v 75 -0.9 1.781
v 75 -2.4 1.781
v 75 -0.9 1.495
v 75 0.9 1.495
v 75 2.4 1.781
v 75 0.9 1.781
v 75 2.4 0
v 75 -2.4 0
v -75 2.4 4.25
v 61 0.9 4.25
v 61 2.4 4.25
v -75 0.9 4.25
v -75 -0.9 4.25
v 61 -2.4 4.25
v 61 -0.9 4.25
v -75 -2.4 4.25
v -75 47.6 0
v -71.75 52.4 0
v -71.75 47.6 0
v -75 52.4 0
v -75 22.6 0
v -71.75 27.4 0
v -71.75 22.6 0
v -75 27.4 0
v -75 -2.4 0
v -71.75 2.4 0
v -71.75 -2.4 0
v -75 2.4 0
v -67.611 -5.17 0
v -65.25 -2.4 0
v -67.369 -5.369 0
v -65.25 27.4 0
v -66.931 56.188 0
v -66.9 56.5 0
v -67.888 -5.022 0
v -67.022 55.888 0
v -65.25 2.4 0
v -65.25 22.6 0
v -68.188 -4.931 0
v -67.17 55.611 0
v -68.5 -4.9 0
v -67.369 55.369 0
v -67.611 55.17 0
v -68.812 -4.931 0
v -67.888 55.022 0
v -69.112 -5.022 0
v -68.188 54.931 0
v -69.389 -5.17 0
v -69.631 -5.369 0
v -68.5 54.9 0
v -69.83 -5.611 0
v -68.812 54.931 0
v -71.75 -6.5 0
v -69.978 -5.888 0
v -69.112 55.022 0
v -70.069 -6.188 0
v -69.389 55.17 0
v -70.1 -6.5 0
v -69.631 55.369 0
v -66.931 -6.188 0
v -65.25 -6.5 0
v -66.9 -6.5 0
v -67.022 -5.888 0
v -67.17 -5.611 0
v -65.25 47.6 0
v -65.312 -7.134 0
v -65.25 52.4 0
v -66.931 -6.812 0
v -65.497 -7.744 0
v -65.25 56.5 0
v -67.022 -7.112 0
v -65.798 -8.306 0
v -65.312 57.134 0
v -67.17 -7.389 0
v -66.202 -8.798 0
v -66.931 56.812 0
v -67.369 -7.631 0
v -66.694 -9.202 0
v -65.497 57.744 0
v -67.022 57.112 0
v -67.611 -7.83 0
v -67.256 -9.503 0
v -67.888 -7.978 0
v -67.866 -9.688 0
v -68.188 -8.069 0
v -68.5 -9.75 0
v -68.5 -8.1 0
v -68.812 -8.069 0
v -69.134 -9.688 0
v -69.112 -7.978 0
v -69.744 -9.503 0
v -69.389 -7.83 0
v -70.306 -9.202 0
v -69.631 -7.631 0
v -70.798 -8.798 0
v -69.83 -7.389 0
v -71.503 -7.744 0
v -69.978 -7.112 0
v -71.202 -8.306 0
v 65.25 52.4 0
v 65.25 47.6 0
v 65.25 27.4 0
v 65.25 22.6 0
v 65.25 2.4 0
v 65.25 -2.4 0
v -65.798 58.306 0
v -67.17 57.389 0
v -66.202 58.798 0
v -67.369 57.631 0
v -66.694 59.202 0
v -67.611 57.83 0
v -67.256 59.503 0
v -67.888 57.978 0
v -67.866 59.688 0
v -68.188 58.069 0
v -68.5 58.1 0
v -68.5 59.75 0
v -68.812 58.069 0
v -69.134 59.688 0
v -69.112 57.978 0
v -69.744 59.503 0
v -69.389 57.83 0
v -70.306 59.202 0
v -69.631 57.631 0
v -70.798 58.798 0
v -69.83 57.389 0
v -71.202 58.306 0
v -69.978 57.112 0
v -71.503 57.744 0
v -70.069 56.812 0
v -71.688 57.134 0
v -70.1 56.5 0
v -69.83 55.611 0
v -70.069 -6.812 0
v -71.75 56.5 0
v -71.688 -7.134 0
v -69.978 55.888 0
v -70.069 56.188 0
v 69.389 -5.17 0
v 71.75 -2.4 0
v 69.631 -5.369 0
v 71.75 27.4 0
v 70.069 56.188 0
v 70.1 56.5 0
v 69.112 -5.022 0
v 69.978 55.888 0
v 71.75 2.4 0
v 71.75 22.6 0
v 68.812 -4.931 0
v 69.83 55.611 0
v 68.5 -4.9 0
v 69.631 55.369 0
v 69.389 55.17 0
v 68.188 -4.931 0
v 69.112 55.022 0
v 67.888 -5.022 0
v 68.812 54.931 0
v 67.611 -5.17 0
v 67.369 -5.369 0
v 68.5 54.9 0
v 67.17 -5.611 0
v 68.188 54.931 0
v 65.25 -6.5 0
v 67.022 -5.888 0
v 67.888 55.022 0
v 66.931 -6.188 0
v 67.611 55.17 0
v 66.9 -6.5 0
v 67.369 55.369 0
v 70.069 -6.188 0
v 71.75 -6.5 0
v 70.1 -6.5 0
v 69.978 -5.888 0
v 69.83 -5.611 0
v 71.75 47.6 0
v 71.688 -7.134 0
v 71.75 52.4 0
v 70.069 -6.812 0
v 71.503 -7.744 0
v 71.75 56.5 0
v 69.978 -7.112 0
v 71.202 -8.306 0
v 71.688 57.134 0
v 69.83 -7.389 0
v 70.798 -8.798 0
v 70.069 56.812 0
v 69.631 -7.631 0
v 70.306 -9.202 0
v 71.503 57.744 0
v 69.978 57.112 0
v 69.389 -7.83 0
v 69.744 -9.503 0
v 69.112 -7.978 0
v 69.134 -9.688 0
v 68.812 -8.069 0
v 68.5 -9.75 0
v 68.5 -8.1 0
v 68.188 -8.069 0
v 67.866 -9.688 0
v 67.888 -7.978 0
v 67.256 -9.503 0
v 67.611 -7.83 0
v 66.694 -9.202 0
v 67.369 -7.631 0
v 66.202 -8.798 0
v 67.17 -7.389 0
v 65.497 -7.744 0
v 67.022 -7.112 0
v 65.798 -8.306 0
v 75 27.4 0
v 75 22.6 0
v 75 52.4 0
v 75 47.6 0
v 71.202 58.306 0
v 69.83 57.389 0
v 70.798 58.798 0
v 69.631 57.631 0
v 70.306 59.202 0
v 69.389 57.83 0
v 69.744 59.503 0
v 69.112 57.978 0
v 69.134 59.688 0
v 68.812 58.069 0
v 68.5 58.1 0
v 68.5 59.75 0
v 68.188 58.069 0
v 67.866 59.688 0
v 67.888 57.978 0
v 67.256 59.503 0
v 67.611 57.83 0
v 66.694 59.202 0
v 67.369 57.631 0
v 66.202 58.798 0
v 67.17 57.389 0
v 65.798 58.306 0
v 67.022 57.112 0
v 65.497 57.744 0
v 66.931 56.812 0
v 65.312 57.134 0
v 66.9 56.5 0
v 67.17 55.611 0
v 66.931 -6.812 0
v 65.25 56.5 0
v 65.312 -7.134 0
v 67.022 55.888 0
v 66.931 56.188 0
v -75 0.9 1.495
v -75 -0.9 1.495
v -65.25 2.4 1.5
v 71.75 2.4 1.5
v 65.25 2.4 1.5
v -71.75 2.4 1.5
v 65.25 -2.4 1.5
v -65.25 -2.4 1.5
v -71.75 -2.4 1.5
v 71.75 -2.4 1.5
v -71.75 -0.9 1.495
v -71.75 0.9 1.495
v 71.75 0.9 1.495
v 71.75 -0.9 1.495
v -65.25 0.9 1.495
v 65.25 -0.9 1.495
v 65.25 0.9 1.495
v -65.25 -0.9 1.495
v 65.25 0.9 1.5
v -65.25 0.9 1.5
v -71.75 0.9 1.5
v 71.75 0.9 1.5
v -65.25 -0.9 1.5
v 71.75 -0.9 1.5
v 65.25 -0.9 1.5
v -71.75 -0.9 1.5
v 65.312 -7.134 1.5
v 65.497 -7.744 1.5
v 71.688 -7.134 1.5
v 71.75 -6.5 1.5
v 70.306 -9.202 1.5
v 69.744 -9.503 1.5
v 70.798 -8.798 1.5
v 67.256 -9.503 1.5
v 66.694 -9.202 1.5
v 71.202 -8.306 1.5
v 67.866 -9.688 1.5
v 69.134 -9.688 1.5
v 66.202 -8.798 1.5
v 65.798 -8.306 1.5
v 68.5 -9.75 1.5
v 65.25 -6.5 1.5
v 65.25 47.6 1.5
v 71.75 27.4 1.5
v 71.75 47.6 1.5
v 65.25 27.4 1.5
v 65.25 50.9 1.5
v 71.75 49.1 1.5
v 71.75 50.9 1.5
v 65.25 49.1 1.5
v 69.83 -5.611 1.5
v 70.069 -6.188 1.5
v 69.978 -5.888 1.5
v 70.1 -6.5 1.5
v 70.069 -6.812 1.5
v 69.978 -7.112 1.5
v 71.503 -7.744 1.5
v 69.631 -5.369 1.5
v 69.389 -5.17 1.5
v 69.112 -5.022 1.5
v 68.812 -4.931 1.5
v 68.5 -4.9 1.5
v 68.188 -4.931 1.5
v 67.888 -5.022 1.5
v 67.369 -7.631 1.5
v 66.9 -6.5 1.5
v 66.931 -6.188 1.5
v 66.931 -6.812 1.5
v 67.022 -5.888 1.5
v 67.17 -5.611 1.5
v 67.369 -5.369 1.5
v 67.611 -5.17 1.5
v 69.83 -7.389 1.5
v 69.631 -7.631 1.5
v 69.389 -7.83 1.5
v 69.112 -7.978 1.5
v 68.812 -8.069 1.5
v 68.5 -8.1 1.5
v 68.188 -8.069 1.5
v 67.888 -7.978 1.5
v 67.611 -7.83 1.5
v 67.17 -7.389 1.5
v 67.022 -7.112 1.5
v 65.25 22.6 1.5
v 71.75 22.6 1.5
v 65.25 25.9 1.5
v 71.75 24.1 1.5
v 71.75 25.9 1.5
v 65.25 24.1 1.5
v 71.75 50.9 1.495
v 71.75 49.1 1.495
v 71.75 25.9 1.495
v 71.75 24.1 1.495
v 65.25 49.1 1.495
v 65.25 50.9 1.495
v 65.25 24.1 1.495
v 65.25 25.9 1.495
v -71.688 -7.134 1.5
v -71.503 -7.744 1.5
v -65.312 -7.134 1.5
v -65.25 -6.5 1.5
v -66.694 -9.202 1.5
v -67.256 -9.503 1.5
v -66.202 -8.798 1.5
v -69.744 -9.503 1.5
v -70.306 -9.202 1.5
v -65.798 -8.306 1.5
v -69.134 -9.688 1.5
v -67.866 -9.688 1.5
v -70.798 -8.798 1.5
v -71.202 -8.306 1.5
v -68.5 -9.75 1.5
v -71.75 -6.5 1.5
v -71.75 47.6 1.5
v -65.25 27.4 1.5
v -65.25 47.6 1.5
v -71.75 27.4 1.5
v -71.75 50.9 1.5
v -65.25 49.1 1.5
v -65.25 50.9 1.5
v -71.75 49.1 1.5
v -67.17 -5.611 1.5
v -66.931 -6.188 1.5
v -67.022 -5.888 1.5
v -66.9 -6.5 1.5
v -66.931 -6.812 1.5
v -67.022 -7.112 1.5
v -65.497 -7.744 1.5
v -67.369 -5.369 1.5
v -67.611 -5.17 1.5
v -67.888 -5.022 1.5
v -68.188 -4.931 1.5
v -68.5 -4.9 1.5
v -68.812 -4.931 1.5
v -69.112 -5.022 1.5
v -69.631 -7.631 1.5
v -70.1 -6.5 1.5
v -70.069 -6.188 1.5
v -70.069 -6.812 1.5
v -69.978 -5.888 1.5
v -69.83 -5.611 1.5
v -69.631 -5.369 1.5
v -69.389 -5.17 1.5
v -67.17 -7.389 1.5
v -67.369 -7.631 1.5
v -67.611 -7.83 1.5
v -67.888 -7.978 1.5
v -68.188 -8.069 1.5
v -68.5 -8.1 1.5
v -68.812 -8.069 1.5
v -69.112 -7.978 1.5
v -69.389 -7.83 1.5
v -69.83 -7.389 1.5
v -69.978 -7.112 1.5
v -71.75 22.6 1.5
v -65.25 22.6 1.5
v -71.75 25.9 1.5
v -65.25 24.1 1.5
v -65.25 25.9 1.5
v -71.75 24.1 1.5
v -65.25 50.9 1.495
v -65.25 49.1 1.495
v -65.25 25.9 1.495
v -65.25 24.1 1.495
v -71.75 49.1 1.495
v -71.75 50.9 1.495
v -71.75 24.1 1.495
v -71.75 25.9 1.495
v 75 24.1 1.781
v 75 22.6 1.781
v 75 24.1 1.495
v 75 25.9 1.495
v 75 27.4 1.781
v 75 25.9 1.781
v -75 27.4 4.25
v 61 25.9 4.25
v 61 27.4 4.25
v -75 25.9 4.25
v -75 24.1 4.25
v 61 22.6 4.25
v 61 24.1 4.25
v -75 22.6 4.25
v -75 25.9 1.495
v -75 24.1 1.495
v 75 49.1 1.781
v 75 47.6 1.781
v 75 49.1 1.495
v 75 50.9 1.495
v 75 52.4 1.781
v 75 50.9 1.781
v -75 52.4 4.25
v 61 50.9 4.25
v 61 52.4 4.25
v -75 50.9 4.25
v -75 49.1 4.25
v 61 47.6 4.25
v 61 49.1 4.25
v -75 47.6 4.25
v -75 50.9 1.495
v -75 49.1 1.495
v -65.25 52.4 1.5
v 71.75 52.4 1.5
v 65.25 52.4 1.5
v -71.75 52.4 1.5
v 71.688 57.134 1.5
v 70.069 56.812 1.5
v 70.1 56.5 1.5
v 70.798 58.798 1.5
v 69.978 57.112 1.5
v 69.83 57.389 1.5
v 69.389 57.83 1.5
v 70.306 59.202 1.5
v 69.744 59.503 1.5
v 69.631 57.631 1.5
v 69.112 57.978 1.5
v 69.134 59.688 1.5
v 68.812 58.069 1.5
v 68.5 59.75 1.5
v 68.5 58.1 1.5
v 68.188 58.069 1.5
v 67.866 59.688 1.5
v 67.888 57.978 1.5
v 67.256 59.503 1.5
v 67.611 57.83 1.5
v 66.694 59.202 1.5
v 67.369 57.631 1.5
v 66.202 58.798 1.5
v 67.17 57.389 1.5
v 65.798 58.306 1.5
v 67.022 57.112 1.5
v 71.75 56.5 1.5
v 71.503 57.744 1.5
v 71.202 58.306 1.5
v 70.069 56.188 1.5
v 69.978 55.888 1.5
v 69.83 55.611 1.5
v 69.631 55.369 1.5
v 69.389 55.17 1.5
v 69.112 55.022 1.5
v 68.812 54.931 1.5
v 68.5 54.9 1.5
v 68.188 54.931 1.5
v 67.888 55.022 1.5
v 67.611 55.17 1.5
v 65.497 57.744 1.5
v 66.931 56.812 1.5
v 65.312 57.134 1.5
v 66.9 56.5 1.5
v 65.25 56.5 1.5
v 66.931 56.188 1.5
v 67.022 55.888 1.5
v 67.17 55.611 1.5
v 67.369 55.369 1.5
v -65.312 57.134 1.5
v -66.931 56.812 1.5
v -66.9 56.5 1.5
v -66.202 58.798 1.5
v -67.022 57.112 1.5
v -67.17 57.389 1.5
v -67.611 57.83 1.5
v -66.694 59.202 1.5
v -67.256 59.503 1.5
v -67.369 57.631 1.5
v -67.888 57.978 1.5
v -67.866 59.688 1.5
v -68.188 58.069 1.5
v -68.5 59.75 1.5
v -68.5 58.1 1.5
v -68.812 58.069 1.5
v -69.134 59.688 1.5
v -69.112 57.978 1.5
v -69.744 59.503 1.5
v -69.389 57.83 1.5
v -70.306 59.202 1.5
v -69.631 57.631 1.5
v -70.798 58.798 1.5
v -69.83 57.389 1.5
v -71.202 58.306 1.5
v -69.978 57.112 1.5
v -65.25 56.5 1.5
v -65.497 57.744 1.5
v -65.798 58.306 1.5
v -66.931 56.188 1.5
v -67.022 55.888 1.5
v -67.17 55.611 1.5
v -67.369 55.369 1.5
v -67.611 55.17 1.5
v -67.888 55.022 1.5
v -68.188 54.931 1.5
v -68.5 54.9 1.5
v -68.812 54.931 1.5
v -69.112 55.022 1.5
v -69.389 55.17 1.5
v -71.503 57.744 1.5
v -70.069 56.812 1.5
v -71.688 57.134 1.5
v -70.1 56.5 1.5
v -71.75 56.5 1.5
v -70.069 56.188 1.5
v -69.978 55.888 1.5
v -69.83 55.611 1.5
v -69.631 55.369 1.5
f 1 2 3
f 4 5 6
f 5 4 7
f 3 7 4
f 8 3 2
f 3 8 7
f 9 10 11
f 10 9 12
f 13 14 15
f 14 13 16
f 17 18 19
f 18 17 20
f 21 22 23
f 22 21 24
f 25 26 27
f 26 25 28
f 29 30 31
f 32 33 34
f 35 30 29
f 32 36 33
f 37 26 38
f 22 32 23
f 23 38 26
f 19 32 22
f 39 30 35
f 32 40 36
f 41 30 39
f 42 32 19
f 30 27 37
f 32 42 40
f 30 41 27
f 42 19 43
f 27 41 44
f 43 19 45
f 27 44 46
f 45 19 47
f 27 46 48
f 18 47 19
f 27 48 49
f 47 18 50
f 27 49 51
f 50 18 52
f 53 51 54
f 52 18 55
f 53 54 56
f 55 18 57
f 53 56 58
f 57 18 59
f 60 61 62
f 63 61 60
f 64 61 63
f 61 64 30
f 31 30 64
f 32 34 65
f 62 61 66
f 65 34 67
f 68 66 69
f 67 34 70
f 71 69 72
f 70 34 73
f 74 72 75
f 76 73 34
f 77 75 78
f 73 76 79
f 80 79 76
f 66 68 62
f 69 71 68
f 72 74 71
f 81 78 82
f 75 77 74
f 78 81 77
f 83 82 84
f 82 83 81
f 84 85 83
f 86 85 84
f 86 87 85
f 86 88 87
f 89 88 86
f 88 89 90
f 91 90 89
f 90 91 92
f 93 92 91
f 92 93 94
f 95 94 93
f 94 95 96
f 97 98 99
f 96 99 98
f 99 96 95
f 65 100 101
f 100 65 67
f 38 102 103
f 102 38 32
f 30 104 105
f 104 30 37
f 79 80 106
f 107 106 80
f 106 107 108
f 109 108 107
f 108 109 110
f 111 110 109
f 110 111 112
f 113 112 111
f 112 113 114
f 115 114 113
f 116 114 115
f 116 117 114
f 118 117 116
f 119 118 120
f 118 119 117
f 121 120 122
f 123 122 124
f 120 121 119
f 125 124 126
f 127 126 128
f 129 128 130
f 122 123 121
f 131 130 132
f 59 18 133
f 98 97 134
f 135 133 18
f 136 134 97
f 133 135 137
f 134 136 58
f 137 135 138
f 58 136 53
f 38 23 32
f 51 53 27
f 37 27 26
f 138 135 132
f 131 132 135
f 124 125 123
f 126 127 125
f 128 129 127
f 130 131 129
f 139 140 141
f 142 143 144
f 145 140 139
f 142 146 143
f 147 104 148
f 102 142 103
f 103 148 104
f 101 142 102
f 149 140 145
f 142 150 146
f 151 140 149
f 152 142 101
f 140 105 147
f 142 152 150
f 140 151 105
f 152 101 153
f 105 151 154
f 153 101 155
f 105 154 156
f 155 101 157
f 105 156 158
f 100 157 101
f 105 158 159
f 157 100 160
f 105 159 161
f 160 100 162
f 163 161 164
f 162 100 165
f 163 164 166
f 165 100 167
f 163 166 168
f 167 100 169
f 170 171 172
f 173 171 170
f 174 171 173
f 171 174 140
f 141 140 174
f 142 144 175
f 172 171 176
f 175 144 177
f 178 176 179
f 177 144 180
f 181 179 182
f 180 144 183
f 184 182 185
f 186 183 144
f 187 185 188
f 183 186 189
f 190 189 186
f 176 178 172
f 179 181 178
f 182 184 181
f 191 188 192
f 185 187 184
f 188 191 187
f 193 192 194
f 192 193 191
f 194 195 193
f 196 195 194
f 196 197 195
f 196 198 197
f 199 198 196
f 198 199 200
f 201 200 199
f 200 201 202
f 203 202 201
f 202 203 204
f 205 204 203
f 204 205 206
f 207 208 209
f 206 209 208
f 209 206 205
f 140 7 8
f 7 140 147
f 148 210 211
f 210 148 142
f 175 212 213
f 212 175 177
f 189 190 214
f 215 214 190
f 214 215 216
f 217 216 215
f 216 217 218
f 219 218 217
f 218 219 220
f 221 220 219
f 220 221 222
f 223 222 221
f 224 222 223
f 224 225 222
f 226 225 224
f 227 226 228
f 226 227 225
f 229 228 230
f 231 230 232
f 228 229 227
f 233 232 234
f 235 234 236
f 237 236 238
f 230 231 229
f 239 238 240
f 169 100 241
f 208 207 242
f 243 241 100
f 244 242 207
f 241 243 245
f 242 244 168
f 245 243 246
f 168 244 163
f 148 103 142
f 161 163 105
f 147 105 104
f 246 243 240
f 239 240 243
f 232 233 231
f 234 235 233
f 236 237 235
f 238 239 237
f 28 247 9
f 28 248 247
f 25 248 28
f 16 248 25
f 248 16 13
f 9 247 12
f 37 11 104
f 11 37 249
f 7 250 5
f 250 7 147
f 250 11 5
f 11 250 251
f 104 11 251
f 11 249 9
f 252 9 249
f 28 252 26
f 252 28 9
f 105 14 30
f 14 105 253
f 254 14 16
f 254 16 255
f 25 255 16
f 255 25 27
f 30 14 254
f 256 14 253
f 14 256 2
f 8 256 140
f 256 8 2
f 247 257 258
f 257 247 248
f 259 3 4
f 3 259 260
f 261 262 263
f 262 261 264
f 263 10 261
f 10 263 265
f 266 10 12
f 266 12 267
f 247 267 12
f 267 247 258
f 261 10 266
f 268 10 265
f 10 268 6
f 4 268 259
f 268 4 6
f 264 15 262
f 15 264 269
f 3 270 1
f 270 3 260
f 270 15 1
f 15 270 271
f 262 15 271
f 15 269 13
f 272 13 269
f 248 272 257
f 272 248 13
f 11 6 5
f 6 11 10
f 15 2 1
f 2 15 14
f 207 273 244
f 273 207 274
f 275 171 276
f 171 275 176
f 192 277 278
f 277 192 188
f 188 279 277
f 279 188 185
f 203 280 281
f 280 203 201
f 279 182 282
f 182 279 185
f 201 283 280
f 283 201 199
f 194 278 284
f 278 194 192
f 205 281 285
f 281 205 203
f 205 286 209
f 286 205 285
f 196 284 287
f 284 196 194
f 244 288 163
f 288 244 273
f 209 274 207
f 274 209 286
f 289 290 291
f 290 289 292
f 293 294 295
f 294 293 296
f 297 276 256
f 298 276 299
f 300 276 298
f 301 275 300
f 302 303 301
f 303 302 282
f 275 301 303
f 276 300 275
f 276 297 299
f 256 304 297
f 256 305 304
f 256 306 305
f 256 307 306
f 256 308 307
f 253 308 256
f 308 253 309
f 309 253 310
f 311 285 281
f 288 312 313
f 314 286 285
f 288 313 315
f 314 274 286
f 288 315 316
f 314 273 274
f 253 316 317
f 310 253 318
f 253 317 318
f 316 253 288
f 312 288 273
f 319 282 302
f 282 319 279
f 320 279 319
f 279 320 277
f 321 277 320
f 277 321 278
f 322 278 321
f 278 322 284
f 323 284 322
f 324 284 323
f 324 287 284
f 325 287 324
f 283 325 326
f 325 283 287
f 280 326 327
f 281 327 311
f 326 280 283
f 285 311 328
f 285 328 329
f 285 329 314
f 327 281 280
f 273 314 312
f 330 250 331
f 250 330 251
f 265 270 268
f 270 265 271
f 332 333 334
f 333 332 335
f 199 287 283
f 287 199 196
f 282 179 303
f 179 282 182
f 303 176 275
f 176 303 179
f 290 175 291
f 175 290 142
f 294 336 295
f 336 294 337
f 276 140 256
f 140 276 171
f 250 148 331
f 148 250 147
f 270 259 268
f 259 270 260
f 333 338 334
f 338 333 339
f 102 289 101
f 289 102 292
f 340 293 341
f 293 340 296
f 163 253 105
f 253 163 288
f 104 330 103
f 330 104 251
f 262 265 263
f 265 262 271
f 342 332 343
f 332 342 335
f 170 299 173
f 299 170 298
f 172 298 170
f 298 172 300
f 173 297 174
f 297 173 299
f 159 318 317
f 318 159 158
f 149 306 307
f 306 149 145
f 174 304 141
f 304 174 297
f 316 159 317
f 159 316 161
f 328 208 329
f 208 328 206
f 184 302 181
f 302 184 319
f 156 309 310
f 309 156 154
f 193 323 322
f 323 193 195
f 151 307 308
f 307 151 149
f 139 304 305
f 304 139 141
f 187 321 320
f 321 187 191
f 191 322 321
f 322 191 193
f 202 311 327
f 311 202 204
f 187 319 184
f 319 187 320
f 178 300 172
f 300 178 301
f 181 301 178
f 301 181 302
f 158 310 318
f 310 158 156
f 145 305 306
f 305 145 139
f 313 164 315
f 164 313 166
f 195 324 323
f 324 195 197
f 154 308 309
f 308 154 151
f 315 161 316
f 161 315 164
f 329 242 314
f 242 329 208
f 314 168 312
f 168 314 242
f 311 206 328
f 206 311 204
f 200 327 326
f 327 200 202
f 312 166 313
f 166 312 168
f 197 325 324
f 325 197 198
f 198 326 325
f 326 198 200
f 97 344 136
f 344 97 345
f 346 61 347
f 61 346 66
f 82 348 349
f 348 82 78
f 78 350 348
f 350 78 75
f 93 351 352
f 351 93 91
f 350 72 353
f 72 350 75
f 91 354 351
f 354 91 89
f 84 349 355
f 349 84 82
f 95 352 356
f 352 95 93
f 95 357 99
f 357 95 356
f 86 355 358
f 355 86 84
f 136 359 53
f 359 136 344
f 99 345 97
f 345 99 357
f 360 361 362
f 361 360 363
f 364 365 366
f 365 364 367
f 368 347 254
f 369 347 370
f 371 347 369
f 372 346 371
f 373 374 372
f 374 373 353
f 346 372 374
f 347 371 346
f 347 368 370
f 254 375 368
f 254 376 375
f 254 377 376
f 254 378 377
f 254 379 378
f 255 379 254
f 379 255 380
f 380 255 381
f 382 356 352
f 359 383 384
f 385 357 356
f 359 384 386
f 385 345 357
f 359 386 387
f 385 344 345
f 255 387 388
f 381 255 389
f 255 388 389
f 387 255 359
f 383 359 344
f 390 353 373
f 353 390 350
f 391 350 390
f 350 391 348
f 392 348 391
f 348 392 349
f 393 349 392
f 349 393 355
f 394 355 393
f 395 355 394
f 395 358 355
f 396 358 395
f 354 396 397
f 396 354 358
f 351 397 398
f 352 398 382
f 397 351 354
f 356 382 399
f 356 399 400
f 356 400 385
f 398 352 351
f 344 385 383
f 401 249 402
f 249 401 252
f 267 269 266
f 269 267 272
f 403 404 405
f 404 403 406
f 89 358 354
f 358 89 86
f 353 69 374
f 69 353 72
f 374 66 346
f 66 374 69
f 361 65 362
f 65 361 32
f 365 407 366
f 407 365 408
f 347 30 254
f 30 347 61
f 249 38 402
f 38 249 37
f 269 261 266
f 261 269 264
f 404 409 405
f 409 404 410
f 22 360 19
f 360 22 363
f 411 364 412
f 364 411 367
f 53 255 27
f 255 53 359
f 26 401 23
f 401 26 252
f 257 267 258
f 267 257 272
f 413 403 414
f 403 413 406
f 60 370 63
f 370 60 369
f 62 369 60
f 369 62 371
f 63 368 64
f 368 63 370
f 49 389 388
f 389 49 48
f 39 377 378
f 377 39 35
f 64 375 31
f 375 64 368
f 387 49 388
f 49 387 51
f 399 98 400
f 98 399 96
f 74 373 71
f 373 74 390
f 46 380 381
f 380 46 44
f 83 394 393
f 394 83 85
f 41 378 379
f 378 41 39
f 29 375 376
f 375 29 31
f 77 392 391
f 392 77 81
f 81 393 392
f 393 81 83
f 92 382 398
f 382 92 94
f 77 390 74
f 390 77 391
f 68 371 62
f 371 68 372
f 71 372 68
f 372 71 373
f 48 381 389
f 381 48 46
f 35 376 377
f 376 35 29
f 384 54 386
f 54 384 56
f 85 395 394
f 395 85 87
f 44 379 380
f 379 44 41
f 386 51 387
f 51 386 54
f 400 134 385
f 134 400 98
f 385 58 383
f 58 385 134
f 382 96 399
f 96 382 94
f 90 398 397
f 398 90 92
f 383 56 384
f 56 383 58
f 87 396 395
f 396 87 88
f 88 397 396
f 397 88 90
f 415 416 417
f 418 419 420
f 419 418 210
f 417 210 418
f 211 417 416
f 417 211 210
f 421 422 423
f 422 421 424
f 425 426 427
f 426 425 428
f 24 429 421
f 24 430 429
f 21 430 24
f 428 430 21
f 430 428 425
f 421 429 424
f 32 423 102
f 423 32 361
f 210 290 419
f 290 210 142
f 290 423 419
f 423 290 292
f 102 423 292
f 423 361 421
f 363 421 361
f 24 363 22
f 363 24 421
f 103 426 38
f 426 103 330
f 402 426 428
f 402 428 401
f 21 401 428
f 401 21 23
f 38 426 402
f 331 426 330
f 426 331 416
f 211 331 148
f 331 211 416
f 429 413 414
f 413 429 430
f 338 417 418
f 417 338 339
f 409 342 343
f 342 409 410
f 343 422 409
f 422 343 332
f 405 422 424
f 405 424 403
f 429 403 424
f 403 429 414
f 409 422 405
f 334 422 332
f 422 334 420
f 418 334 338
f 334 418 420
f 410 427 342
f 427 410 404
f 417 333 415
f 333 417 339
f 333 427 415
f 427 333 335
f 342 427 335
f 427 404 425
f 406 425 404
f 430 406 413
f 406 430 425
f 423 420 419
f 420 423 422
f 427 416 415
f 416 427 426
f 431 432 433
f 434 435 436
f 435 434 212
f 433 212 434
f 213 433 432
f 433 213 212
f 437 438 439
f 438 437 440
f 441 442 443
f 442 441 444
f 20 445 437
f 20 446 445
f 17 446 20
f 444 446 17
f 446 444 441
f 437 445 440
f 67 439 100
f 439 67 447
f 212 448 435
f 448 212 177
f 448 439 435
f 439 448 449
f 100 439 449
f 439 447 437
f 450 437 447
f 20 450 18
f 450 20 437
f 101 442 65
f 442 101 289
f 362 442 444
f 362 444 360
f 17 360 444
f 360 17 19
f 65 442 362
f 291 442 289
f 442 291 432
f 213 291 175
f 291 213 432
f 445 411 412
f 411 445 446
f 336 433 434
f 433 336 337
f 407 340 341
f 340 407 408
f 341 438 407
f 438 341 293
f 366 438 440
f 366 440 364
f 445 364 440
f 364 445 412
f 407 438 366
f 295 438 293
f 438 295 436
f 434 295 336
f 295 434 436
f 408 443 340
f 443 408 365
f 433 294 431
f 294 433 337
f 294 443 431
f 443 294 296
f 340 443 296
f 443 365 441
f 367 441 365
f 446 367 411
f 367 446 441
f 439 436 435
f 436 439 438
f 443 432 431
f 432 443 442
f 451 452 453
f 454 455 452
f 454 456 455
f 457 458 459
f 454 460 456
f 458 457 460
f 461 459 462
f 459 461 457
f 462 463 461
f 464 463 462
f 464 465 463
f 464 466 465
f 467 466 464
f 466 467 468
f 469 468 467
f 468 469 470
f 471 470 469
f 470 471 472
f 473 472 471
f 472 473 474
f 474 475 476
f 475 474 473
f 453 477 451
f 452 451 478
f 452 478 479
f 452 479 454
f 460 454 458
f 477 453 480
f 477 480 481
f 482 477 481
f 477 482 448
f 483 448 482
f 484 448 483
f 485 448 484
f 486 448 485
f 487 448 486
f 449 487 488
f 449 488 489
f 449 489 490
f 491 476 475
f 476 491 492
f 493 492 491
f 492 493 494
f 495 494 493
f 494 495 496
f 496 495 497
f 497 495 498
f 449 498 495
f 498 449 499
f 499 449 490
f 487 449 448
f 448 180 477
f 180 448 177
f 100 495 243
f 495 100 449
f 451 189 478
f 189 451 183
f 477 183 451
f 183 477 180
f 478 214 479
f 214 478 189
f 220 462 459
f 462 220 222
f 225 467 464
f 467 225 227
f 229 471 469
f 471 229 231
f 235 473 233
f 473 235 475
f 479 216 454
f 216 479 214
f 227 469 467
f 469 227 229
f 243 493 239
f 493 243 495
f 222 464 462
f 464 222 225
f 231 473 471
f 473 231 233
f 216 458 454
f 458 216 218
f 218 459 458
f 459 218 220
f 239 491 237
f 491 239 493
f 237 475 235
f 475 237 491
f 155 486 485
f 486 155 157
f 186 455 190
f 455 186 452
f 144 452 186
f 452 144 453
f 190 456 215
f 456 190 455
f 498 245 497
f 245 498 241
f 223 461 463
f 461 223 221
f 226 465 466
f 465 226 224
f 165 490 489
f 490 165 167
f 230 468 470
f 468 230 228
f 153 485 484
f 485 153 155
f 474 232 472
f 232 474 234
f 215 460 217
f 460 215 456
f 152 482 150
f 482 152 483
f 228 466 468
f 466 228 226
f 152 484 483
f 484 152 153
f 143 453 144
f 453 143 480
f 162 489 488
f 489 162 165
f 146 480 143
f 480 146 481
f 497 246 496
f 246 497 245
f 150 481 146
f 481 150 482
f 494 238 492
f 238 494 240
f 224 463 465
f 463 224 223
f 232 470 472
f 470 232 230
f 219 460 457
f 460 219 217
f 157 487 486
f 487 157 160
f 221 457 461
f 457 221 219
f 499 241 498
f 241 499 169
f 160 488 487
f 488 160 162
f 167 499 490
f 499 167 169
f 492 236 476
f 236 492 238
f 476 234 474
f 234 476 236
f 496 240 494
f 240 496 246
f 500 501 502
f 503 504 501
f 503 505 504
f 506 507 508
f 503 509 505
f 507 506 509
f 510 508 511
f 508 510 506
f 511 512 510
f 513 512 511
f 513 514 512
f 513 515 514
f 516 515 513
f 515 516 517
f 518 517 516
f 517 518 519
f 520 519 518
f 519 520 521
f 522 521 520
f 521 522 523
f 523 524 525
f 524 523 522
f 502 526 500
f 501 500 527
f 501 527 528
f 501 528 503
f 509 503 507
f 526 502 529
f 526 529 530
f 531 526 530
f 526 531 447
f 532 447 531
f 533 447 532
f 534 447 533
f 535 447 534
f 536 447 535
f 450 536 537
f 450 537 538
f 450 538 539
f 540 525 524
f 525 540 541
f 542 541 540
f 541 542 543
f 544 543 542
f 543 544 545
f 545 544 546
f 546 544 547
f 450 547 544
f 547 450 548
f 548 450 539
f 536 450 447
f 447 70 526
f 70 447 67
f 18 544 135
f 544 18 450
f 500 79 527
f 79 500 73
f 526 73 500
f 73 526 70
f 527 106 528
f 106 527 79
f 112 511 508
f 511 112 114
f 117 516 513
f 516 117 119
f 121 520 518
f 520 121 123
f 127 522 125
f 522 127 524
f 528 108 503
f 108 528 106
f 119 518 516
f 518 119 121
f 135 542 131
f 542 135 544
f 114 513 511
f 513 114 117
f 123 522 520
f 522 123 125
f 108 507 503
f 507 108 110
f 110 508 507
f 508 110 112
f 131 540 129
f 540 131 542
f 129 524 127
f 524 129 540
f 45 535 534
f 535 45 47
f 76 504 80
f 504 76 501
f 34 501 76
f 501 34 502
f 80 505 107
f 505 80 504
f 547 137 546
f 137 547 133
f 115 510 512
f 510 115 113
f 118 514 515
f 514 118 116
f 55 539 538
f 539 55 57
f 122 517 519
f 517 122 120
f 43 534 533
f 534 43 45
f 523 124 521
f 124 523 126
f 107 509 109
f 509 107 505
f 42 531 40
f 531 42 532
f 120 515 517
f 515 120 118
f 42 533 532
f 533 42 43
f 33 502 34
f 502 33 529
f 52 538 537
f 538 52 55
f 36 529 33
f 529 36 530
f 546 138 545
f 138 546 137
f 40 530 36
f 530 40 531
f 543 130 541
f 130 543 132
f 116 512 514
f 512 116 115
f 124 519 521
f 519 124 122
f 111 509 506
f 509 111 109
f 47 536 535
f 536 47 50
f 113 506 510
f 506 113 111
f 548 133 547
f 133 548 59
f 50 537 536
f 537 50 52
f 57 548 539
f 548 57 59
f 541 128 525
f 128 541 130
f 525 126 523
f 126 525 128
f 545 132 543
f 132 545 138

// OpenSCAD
// EurocardTripleGuide4

$fn = 32;

pcbThick = 1.8;
guideLen = 150;
guideHeight = 2.75;
guideThick = 1.5;
guideWidth = guideThick * 2 + pcbThick;

module guidePart() {
    guideZ = guideThick + guideHeight;
    difference() {
        translate([0, 0, guideZ  / 2]) cube([guideLen, guideWidth, guideZ], true);
        translate([-0.01, 0, guideThick + guideHeight / 2]) 
            cube([guideLen + 0.03, pcbThick, guideHeight + 0.01], true);
        translate([guideLen / 2 -14, -guideWidth/2-0.01, guideZ]) rotate([0, 10, 0]) 
            cube([15, guideWidth + 0.02, guideHeight]);
    }
}

mountWidth = 6.5;
mountHole = 3.2;

module sideMount() {
  difference() {
    union() {
        cylinder(d = mountWidth, h = guideThick);
        translate([-mountWidth / 2, 0, 0]) cube([mountWidth, mountWidth * 2, guideThick]);
        translate([0, mountWidth * 2, 0]) cylinder(d = mountWidth, h = guideThick);
    }
    translate([0, 0, -0.01]) cylinder(d = mountHole, h = guideThick + 0.02);
    translate([0, mountWidth * 2, -0.01]) cylinder(d = mountHole, h = guideThick + 0.02);
  }
}

module guide() {
    guidePart();
    translate([guideLen / 2 -mountWidth, -mountWidth, 0]) sideMount();
//    translate([0, -mountWidth, 0]) sideMount();
    translate([-guideLen / 2 +mountWidth, -mountWidth, 0]) sideMount();
}

//intersection() {
   union() {
      guide();
      translate([0, 25.0, 0]) guide();
      translate([0, 50.0, 0]) guide();
   }
   translate([guideLen / 2 -mountWidth * 1.5, 0, 0]) cube([mountWidth, 50.0, guideThick]);
   translate([-guideLen / 2 +mountWidth * 0.5, 0, 0]) cube([mountWidth, 50.0, guideThick]);
//}
